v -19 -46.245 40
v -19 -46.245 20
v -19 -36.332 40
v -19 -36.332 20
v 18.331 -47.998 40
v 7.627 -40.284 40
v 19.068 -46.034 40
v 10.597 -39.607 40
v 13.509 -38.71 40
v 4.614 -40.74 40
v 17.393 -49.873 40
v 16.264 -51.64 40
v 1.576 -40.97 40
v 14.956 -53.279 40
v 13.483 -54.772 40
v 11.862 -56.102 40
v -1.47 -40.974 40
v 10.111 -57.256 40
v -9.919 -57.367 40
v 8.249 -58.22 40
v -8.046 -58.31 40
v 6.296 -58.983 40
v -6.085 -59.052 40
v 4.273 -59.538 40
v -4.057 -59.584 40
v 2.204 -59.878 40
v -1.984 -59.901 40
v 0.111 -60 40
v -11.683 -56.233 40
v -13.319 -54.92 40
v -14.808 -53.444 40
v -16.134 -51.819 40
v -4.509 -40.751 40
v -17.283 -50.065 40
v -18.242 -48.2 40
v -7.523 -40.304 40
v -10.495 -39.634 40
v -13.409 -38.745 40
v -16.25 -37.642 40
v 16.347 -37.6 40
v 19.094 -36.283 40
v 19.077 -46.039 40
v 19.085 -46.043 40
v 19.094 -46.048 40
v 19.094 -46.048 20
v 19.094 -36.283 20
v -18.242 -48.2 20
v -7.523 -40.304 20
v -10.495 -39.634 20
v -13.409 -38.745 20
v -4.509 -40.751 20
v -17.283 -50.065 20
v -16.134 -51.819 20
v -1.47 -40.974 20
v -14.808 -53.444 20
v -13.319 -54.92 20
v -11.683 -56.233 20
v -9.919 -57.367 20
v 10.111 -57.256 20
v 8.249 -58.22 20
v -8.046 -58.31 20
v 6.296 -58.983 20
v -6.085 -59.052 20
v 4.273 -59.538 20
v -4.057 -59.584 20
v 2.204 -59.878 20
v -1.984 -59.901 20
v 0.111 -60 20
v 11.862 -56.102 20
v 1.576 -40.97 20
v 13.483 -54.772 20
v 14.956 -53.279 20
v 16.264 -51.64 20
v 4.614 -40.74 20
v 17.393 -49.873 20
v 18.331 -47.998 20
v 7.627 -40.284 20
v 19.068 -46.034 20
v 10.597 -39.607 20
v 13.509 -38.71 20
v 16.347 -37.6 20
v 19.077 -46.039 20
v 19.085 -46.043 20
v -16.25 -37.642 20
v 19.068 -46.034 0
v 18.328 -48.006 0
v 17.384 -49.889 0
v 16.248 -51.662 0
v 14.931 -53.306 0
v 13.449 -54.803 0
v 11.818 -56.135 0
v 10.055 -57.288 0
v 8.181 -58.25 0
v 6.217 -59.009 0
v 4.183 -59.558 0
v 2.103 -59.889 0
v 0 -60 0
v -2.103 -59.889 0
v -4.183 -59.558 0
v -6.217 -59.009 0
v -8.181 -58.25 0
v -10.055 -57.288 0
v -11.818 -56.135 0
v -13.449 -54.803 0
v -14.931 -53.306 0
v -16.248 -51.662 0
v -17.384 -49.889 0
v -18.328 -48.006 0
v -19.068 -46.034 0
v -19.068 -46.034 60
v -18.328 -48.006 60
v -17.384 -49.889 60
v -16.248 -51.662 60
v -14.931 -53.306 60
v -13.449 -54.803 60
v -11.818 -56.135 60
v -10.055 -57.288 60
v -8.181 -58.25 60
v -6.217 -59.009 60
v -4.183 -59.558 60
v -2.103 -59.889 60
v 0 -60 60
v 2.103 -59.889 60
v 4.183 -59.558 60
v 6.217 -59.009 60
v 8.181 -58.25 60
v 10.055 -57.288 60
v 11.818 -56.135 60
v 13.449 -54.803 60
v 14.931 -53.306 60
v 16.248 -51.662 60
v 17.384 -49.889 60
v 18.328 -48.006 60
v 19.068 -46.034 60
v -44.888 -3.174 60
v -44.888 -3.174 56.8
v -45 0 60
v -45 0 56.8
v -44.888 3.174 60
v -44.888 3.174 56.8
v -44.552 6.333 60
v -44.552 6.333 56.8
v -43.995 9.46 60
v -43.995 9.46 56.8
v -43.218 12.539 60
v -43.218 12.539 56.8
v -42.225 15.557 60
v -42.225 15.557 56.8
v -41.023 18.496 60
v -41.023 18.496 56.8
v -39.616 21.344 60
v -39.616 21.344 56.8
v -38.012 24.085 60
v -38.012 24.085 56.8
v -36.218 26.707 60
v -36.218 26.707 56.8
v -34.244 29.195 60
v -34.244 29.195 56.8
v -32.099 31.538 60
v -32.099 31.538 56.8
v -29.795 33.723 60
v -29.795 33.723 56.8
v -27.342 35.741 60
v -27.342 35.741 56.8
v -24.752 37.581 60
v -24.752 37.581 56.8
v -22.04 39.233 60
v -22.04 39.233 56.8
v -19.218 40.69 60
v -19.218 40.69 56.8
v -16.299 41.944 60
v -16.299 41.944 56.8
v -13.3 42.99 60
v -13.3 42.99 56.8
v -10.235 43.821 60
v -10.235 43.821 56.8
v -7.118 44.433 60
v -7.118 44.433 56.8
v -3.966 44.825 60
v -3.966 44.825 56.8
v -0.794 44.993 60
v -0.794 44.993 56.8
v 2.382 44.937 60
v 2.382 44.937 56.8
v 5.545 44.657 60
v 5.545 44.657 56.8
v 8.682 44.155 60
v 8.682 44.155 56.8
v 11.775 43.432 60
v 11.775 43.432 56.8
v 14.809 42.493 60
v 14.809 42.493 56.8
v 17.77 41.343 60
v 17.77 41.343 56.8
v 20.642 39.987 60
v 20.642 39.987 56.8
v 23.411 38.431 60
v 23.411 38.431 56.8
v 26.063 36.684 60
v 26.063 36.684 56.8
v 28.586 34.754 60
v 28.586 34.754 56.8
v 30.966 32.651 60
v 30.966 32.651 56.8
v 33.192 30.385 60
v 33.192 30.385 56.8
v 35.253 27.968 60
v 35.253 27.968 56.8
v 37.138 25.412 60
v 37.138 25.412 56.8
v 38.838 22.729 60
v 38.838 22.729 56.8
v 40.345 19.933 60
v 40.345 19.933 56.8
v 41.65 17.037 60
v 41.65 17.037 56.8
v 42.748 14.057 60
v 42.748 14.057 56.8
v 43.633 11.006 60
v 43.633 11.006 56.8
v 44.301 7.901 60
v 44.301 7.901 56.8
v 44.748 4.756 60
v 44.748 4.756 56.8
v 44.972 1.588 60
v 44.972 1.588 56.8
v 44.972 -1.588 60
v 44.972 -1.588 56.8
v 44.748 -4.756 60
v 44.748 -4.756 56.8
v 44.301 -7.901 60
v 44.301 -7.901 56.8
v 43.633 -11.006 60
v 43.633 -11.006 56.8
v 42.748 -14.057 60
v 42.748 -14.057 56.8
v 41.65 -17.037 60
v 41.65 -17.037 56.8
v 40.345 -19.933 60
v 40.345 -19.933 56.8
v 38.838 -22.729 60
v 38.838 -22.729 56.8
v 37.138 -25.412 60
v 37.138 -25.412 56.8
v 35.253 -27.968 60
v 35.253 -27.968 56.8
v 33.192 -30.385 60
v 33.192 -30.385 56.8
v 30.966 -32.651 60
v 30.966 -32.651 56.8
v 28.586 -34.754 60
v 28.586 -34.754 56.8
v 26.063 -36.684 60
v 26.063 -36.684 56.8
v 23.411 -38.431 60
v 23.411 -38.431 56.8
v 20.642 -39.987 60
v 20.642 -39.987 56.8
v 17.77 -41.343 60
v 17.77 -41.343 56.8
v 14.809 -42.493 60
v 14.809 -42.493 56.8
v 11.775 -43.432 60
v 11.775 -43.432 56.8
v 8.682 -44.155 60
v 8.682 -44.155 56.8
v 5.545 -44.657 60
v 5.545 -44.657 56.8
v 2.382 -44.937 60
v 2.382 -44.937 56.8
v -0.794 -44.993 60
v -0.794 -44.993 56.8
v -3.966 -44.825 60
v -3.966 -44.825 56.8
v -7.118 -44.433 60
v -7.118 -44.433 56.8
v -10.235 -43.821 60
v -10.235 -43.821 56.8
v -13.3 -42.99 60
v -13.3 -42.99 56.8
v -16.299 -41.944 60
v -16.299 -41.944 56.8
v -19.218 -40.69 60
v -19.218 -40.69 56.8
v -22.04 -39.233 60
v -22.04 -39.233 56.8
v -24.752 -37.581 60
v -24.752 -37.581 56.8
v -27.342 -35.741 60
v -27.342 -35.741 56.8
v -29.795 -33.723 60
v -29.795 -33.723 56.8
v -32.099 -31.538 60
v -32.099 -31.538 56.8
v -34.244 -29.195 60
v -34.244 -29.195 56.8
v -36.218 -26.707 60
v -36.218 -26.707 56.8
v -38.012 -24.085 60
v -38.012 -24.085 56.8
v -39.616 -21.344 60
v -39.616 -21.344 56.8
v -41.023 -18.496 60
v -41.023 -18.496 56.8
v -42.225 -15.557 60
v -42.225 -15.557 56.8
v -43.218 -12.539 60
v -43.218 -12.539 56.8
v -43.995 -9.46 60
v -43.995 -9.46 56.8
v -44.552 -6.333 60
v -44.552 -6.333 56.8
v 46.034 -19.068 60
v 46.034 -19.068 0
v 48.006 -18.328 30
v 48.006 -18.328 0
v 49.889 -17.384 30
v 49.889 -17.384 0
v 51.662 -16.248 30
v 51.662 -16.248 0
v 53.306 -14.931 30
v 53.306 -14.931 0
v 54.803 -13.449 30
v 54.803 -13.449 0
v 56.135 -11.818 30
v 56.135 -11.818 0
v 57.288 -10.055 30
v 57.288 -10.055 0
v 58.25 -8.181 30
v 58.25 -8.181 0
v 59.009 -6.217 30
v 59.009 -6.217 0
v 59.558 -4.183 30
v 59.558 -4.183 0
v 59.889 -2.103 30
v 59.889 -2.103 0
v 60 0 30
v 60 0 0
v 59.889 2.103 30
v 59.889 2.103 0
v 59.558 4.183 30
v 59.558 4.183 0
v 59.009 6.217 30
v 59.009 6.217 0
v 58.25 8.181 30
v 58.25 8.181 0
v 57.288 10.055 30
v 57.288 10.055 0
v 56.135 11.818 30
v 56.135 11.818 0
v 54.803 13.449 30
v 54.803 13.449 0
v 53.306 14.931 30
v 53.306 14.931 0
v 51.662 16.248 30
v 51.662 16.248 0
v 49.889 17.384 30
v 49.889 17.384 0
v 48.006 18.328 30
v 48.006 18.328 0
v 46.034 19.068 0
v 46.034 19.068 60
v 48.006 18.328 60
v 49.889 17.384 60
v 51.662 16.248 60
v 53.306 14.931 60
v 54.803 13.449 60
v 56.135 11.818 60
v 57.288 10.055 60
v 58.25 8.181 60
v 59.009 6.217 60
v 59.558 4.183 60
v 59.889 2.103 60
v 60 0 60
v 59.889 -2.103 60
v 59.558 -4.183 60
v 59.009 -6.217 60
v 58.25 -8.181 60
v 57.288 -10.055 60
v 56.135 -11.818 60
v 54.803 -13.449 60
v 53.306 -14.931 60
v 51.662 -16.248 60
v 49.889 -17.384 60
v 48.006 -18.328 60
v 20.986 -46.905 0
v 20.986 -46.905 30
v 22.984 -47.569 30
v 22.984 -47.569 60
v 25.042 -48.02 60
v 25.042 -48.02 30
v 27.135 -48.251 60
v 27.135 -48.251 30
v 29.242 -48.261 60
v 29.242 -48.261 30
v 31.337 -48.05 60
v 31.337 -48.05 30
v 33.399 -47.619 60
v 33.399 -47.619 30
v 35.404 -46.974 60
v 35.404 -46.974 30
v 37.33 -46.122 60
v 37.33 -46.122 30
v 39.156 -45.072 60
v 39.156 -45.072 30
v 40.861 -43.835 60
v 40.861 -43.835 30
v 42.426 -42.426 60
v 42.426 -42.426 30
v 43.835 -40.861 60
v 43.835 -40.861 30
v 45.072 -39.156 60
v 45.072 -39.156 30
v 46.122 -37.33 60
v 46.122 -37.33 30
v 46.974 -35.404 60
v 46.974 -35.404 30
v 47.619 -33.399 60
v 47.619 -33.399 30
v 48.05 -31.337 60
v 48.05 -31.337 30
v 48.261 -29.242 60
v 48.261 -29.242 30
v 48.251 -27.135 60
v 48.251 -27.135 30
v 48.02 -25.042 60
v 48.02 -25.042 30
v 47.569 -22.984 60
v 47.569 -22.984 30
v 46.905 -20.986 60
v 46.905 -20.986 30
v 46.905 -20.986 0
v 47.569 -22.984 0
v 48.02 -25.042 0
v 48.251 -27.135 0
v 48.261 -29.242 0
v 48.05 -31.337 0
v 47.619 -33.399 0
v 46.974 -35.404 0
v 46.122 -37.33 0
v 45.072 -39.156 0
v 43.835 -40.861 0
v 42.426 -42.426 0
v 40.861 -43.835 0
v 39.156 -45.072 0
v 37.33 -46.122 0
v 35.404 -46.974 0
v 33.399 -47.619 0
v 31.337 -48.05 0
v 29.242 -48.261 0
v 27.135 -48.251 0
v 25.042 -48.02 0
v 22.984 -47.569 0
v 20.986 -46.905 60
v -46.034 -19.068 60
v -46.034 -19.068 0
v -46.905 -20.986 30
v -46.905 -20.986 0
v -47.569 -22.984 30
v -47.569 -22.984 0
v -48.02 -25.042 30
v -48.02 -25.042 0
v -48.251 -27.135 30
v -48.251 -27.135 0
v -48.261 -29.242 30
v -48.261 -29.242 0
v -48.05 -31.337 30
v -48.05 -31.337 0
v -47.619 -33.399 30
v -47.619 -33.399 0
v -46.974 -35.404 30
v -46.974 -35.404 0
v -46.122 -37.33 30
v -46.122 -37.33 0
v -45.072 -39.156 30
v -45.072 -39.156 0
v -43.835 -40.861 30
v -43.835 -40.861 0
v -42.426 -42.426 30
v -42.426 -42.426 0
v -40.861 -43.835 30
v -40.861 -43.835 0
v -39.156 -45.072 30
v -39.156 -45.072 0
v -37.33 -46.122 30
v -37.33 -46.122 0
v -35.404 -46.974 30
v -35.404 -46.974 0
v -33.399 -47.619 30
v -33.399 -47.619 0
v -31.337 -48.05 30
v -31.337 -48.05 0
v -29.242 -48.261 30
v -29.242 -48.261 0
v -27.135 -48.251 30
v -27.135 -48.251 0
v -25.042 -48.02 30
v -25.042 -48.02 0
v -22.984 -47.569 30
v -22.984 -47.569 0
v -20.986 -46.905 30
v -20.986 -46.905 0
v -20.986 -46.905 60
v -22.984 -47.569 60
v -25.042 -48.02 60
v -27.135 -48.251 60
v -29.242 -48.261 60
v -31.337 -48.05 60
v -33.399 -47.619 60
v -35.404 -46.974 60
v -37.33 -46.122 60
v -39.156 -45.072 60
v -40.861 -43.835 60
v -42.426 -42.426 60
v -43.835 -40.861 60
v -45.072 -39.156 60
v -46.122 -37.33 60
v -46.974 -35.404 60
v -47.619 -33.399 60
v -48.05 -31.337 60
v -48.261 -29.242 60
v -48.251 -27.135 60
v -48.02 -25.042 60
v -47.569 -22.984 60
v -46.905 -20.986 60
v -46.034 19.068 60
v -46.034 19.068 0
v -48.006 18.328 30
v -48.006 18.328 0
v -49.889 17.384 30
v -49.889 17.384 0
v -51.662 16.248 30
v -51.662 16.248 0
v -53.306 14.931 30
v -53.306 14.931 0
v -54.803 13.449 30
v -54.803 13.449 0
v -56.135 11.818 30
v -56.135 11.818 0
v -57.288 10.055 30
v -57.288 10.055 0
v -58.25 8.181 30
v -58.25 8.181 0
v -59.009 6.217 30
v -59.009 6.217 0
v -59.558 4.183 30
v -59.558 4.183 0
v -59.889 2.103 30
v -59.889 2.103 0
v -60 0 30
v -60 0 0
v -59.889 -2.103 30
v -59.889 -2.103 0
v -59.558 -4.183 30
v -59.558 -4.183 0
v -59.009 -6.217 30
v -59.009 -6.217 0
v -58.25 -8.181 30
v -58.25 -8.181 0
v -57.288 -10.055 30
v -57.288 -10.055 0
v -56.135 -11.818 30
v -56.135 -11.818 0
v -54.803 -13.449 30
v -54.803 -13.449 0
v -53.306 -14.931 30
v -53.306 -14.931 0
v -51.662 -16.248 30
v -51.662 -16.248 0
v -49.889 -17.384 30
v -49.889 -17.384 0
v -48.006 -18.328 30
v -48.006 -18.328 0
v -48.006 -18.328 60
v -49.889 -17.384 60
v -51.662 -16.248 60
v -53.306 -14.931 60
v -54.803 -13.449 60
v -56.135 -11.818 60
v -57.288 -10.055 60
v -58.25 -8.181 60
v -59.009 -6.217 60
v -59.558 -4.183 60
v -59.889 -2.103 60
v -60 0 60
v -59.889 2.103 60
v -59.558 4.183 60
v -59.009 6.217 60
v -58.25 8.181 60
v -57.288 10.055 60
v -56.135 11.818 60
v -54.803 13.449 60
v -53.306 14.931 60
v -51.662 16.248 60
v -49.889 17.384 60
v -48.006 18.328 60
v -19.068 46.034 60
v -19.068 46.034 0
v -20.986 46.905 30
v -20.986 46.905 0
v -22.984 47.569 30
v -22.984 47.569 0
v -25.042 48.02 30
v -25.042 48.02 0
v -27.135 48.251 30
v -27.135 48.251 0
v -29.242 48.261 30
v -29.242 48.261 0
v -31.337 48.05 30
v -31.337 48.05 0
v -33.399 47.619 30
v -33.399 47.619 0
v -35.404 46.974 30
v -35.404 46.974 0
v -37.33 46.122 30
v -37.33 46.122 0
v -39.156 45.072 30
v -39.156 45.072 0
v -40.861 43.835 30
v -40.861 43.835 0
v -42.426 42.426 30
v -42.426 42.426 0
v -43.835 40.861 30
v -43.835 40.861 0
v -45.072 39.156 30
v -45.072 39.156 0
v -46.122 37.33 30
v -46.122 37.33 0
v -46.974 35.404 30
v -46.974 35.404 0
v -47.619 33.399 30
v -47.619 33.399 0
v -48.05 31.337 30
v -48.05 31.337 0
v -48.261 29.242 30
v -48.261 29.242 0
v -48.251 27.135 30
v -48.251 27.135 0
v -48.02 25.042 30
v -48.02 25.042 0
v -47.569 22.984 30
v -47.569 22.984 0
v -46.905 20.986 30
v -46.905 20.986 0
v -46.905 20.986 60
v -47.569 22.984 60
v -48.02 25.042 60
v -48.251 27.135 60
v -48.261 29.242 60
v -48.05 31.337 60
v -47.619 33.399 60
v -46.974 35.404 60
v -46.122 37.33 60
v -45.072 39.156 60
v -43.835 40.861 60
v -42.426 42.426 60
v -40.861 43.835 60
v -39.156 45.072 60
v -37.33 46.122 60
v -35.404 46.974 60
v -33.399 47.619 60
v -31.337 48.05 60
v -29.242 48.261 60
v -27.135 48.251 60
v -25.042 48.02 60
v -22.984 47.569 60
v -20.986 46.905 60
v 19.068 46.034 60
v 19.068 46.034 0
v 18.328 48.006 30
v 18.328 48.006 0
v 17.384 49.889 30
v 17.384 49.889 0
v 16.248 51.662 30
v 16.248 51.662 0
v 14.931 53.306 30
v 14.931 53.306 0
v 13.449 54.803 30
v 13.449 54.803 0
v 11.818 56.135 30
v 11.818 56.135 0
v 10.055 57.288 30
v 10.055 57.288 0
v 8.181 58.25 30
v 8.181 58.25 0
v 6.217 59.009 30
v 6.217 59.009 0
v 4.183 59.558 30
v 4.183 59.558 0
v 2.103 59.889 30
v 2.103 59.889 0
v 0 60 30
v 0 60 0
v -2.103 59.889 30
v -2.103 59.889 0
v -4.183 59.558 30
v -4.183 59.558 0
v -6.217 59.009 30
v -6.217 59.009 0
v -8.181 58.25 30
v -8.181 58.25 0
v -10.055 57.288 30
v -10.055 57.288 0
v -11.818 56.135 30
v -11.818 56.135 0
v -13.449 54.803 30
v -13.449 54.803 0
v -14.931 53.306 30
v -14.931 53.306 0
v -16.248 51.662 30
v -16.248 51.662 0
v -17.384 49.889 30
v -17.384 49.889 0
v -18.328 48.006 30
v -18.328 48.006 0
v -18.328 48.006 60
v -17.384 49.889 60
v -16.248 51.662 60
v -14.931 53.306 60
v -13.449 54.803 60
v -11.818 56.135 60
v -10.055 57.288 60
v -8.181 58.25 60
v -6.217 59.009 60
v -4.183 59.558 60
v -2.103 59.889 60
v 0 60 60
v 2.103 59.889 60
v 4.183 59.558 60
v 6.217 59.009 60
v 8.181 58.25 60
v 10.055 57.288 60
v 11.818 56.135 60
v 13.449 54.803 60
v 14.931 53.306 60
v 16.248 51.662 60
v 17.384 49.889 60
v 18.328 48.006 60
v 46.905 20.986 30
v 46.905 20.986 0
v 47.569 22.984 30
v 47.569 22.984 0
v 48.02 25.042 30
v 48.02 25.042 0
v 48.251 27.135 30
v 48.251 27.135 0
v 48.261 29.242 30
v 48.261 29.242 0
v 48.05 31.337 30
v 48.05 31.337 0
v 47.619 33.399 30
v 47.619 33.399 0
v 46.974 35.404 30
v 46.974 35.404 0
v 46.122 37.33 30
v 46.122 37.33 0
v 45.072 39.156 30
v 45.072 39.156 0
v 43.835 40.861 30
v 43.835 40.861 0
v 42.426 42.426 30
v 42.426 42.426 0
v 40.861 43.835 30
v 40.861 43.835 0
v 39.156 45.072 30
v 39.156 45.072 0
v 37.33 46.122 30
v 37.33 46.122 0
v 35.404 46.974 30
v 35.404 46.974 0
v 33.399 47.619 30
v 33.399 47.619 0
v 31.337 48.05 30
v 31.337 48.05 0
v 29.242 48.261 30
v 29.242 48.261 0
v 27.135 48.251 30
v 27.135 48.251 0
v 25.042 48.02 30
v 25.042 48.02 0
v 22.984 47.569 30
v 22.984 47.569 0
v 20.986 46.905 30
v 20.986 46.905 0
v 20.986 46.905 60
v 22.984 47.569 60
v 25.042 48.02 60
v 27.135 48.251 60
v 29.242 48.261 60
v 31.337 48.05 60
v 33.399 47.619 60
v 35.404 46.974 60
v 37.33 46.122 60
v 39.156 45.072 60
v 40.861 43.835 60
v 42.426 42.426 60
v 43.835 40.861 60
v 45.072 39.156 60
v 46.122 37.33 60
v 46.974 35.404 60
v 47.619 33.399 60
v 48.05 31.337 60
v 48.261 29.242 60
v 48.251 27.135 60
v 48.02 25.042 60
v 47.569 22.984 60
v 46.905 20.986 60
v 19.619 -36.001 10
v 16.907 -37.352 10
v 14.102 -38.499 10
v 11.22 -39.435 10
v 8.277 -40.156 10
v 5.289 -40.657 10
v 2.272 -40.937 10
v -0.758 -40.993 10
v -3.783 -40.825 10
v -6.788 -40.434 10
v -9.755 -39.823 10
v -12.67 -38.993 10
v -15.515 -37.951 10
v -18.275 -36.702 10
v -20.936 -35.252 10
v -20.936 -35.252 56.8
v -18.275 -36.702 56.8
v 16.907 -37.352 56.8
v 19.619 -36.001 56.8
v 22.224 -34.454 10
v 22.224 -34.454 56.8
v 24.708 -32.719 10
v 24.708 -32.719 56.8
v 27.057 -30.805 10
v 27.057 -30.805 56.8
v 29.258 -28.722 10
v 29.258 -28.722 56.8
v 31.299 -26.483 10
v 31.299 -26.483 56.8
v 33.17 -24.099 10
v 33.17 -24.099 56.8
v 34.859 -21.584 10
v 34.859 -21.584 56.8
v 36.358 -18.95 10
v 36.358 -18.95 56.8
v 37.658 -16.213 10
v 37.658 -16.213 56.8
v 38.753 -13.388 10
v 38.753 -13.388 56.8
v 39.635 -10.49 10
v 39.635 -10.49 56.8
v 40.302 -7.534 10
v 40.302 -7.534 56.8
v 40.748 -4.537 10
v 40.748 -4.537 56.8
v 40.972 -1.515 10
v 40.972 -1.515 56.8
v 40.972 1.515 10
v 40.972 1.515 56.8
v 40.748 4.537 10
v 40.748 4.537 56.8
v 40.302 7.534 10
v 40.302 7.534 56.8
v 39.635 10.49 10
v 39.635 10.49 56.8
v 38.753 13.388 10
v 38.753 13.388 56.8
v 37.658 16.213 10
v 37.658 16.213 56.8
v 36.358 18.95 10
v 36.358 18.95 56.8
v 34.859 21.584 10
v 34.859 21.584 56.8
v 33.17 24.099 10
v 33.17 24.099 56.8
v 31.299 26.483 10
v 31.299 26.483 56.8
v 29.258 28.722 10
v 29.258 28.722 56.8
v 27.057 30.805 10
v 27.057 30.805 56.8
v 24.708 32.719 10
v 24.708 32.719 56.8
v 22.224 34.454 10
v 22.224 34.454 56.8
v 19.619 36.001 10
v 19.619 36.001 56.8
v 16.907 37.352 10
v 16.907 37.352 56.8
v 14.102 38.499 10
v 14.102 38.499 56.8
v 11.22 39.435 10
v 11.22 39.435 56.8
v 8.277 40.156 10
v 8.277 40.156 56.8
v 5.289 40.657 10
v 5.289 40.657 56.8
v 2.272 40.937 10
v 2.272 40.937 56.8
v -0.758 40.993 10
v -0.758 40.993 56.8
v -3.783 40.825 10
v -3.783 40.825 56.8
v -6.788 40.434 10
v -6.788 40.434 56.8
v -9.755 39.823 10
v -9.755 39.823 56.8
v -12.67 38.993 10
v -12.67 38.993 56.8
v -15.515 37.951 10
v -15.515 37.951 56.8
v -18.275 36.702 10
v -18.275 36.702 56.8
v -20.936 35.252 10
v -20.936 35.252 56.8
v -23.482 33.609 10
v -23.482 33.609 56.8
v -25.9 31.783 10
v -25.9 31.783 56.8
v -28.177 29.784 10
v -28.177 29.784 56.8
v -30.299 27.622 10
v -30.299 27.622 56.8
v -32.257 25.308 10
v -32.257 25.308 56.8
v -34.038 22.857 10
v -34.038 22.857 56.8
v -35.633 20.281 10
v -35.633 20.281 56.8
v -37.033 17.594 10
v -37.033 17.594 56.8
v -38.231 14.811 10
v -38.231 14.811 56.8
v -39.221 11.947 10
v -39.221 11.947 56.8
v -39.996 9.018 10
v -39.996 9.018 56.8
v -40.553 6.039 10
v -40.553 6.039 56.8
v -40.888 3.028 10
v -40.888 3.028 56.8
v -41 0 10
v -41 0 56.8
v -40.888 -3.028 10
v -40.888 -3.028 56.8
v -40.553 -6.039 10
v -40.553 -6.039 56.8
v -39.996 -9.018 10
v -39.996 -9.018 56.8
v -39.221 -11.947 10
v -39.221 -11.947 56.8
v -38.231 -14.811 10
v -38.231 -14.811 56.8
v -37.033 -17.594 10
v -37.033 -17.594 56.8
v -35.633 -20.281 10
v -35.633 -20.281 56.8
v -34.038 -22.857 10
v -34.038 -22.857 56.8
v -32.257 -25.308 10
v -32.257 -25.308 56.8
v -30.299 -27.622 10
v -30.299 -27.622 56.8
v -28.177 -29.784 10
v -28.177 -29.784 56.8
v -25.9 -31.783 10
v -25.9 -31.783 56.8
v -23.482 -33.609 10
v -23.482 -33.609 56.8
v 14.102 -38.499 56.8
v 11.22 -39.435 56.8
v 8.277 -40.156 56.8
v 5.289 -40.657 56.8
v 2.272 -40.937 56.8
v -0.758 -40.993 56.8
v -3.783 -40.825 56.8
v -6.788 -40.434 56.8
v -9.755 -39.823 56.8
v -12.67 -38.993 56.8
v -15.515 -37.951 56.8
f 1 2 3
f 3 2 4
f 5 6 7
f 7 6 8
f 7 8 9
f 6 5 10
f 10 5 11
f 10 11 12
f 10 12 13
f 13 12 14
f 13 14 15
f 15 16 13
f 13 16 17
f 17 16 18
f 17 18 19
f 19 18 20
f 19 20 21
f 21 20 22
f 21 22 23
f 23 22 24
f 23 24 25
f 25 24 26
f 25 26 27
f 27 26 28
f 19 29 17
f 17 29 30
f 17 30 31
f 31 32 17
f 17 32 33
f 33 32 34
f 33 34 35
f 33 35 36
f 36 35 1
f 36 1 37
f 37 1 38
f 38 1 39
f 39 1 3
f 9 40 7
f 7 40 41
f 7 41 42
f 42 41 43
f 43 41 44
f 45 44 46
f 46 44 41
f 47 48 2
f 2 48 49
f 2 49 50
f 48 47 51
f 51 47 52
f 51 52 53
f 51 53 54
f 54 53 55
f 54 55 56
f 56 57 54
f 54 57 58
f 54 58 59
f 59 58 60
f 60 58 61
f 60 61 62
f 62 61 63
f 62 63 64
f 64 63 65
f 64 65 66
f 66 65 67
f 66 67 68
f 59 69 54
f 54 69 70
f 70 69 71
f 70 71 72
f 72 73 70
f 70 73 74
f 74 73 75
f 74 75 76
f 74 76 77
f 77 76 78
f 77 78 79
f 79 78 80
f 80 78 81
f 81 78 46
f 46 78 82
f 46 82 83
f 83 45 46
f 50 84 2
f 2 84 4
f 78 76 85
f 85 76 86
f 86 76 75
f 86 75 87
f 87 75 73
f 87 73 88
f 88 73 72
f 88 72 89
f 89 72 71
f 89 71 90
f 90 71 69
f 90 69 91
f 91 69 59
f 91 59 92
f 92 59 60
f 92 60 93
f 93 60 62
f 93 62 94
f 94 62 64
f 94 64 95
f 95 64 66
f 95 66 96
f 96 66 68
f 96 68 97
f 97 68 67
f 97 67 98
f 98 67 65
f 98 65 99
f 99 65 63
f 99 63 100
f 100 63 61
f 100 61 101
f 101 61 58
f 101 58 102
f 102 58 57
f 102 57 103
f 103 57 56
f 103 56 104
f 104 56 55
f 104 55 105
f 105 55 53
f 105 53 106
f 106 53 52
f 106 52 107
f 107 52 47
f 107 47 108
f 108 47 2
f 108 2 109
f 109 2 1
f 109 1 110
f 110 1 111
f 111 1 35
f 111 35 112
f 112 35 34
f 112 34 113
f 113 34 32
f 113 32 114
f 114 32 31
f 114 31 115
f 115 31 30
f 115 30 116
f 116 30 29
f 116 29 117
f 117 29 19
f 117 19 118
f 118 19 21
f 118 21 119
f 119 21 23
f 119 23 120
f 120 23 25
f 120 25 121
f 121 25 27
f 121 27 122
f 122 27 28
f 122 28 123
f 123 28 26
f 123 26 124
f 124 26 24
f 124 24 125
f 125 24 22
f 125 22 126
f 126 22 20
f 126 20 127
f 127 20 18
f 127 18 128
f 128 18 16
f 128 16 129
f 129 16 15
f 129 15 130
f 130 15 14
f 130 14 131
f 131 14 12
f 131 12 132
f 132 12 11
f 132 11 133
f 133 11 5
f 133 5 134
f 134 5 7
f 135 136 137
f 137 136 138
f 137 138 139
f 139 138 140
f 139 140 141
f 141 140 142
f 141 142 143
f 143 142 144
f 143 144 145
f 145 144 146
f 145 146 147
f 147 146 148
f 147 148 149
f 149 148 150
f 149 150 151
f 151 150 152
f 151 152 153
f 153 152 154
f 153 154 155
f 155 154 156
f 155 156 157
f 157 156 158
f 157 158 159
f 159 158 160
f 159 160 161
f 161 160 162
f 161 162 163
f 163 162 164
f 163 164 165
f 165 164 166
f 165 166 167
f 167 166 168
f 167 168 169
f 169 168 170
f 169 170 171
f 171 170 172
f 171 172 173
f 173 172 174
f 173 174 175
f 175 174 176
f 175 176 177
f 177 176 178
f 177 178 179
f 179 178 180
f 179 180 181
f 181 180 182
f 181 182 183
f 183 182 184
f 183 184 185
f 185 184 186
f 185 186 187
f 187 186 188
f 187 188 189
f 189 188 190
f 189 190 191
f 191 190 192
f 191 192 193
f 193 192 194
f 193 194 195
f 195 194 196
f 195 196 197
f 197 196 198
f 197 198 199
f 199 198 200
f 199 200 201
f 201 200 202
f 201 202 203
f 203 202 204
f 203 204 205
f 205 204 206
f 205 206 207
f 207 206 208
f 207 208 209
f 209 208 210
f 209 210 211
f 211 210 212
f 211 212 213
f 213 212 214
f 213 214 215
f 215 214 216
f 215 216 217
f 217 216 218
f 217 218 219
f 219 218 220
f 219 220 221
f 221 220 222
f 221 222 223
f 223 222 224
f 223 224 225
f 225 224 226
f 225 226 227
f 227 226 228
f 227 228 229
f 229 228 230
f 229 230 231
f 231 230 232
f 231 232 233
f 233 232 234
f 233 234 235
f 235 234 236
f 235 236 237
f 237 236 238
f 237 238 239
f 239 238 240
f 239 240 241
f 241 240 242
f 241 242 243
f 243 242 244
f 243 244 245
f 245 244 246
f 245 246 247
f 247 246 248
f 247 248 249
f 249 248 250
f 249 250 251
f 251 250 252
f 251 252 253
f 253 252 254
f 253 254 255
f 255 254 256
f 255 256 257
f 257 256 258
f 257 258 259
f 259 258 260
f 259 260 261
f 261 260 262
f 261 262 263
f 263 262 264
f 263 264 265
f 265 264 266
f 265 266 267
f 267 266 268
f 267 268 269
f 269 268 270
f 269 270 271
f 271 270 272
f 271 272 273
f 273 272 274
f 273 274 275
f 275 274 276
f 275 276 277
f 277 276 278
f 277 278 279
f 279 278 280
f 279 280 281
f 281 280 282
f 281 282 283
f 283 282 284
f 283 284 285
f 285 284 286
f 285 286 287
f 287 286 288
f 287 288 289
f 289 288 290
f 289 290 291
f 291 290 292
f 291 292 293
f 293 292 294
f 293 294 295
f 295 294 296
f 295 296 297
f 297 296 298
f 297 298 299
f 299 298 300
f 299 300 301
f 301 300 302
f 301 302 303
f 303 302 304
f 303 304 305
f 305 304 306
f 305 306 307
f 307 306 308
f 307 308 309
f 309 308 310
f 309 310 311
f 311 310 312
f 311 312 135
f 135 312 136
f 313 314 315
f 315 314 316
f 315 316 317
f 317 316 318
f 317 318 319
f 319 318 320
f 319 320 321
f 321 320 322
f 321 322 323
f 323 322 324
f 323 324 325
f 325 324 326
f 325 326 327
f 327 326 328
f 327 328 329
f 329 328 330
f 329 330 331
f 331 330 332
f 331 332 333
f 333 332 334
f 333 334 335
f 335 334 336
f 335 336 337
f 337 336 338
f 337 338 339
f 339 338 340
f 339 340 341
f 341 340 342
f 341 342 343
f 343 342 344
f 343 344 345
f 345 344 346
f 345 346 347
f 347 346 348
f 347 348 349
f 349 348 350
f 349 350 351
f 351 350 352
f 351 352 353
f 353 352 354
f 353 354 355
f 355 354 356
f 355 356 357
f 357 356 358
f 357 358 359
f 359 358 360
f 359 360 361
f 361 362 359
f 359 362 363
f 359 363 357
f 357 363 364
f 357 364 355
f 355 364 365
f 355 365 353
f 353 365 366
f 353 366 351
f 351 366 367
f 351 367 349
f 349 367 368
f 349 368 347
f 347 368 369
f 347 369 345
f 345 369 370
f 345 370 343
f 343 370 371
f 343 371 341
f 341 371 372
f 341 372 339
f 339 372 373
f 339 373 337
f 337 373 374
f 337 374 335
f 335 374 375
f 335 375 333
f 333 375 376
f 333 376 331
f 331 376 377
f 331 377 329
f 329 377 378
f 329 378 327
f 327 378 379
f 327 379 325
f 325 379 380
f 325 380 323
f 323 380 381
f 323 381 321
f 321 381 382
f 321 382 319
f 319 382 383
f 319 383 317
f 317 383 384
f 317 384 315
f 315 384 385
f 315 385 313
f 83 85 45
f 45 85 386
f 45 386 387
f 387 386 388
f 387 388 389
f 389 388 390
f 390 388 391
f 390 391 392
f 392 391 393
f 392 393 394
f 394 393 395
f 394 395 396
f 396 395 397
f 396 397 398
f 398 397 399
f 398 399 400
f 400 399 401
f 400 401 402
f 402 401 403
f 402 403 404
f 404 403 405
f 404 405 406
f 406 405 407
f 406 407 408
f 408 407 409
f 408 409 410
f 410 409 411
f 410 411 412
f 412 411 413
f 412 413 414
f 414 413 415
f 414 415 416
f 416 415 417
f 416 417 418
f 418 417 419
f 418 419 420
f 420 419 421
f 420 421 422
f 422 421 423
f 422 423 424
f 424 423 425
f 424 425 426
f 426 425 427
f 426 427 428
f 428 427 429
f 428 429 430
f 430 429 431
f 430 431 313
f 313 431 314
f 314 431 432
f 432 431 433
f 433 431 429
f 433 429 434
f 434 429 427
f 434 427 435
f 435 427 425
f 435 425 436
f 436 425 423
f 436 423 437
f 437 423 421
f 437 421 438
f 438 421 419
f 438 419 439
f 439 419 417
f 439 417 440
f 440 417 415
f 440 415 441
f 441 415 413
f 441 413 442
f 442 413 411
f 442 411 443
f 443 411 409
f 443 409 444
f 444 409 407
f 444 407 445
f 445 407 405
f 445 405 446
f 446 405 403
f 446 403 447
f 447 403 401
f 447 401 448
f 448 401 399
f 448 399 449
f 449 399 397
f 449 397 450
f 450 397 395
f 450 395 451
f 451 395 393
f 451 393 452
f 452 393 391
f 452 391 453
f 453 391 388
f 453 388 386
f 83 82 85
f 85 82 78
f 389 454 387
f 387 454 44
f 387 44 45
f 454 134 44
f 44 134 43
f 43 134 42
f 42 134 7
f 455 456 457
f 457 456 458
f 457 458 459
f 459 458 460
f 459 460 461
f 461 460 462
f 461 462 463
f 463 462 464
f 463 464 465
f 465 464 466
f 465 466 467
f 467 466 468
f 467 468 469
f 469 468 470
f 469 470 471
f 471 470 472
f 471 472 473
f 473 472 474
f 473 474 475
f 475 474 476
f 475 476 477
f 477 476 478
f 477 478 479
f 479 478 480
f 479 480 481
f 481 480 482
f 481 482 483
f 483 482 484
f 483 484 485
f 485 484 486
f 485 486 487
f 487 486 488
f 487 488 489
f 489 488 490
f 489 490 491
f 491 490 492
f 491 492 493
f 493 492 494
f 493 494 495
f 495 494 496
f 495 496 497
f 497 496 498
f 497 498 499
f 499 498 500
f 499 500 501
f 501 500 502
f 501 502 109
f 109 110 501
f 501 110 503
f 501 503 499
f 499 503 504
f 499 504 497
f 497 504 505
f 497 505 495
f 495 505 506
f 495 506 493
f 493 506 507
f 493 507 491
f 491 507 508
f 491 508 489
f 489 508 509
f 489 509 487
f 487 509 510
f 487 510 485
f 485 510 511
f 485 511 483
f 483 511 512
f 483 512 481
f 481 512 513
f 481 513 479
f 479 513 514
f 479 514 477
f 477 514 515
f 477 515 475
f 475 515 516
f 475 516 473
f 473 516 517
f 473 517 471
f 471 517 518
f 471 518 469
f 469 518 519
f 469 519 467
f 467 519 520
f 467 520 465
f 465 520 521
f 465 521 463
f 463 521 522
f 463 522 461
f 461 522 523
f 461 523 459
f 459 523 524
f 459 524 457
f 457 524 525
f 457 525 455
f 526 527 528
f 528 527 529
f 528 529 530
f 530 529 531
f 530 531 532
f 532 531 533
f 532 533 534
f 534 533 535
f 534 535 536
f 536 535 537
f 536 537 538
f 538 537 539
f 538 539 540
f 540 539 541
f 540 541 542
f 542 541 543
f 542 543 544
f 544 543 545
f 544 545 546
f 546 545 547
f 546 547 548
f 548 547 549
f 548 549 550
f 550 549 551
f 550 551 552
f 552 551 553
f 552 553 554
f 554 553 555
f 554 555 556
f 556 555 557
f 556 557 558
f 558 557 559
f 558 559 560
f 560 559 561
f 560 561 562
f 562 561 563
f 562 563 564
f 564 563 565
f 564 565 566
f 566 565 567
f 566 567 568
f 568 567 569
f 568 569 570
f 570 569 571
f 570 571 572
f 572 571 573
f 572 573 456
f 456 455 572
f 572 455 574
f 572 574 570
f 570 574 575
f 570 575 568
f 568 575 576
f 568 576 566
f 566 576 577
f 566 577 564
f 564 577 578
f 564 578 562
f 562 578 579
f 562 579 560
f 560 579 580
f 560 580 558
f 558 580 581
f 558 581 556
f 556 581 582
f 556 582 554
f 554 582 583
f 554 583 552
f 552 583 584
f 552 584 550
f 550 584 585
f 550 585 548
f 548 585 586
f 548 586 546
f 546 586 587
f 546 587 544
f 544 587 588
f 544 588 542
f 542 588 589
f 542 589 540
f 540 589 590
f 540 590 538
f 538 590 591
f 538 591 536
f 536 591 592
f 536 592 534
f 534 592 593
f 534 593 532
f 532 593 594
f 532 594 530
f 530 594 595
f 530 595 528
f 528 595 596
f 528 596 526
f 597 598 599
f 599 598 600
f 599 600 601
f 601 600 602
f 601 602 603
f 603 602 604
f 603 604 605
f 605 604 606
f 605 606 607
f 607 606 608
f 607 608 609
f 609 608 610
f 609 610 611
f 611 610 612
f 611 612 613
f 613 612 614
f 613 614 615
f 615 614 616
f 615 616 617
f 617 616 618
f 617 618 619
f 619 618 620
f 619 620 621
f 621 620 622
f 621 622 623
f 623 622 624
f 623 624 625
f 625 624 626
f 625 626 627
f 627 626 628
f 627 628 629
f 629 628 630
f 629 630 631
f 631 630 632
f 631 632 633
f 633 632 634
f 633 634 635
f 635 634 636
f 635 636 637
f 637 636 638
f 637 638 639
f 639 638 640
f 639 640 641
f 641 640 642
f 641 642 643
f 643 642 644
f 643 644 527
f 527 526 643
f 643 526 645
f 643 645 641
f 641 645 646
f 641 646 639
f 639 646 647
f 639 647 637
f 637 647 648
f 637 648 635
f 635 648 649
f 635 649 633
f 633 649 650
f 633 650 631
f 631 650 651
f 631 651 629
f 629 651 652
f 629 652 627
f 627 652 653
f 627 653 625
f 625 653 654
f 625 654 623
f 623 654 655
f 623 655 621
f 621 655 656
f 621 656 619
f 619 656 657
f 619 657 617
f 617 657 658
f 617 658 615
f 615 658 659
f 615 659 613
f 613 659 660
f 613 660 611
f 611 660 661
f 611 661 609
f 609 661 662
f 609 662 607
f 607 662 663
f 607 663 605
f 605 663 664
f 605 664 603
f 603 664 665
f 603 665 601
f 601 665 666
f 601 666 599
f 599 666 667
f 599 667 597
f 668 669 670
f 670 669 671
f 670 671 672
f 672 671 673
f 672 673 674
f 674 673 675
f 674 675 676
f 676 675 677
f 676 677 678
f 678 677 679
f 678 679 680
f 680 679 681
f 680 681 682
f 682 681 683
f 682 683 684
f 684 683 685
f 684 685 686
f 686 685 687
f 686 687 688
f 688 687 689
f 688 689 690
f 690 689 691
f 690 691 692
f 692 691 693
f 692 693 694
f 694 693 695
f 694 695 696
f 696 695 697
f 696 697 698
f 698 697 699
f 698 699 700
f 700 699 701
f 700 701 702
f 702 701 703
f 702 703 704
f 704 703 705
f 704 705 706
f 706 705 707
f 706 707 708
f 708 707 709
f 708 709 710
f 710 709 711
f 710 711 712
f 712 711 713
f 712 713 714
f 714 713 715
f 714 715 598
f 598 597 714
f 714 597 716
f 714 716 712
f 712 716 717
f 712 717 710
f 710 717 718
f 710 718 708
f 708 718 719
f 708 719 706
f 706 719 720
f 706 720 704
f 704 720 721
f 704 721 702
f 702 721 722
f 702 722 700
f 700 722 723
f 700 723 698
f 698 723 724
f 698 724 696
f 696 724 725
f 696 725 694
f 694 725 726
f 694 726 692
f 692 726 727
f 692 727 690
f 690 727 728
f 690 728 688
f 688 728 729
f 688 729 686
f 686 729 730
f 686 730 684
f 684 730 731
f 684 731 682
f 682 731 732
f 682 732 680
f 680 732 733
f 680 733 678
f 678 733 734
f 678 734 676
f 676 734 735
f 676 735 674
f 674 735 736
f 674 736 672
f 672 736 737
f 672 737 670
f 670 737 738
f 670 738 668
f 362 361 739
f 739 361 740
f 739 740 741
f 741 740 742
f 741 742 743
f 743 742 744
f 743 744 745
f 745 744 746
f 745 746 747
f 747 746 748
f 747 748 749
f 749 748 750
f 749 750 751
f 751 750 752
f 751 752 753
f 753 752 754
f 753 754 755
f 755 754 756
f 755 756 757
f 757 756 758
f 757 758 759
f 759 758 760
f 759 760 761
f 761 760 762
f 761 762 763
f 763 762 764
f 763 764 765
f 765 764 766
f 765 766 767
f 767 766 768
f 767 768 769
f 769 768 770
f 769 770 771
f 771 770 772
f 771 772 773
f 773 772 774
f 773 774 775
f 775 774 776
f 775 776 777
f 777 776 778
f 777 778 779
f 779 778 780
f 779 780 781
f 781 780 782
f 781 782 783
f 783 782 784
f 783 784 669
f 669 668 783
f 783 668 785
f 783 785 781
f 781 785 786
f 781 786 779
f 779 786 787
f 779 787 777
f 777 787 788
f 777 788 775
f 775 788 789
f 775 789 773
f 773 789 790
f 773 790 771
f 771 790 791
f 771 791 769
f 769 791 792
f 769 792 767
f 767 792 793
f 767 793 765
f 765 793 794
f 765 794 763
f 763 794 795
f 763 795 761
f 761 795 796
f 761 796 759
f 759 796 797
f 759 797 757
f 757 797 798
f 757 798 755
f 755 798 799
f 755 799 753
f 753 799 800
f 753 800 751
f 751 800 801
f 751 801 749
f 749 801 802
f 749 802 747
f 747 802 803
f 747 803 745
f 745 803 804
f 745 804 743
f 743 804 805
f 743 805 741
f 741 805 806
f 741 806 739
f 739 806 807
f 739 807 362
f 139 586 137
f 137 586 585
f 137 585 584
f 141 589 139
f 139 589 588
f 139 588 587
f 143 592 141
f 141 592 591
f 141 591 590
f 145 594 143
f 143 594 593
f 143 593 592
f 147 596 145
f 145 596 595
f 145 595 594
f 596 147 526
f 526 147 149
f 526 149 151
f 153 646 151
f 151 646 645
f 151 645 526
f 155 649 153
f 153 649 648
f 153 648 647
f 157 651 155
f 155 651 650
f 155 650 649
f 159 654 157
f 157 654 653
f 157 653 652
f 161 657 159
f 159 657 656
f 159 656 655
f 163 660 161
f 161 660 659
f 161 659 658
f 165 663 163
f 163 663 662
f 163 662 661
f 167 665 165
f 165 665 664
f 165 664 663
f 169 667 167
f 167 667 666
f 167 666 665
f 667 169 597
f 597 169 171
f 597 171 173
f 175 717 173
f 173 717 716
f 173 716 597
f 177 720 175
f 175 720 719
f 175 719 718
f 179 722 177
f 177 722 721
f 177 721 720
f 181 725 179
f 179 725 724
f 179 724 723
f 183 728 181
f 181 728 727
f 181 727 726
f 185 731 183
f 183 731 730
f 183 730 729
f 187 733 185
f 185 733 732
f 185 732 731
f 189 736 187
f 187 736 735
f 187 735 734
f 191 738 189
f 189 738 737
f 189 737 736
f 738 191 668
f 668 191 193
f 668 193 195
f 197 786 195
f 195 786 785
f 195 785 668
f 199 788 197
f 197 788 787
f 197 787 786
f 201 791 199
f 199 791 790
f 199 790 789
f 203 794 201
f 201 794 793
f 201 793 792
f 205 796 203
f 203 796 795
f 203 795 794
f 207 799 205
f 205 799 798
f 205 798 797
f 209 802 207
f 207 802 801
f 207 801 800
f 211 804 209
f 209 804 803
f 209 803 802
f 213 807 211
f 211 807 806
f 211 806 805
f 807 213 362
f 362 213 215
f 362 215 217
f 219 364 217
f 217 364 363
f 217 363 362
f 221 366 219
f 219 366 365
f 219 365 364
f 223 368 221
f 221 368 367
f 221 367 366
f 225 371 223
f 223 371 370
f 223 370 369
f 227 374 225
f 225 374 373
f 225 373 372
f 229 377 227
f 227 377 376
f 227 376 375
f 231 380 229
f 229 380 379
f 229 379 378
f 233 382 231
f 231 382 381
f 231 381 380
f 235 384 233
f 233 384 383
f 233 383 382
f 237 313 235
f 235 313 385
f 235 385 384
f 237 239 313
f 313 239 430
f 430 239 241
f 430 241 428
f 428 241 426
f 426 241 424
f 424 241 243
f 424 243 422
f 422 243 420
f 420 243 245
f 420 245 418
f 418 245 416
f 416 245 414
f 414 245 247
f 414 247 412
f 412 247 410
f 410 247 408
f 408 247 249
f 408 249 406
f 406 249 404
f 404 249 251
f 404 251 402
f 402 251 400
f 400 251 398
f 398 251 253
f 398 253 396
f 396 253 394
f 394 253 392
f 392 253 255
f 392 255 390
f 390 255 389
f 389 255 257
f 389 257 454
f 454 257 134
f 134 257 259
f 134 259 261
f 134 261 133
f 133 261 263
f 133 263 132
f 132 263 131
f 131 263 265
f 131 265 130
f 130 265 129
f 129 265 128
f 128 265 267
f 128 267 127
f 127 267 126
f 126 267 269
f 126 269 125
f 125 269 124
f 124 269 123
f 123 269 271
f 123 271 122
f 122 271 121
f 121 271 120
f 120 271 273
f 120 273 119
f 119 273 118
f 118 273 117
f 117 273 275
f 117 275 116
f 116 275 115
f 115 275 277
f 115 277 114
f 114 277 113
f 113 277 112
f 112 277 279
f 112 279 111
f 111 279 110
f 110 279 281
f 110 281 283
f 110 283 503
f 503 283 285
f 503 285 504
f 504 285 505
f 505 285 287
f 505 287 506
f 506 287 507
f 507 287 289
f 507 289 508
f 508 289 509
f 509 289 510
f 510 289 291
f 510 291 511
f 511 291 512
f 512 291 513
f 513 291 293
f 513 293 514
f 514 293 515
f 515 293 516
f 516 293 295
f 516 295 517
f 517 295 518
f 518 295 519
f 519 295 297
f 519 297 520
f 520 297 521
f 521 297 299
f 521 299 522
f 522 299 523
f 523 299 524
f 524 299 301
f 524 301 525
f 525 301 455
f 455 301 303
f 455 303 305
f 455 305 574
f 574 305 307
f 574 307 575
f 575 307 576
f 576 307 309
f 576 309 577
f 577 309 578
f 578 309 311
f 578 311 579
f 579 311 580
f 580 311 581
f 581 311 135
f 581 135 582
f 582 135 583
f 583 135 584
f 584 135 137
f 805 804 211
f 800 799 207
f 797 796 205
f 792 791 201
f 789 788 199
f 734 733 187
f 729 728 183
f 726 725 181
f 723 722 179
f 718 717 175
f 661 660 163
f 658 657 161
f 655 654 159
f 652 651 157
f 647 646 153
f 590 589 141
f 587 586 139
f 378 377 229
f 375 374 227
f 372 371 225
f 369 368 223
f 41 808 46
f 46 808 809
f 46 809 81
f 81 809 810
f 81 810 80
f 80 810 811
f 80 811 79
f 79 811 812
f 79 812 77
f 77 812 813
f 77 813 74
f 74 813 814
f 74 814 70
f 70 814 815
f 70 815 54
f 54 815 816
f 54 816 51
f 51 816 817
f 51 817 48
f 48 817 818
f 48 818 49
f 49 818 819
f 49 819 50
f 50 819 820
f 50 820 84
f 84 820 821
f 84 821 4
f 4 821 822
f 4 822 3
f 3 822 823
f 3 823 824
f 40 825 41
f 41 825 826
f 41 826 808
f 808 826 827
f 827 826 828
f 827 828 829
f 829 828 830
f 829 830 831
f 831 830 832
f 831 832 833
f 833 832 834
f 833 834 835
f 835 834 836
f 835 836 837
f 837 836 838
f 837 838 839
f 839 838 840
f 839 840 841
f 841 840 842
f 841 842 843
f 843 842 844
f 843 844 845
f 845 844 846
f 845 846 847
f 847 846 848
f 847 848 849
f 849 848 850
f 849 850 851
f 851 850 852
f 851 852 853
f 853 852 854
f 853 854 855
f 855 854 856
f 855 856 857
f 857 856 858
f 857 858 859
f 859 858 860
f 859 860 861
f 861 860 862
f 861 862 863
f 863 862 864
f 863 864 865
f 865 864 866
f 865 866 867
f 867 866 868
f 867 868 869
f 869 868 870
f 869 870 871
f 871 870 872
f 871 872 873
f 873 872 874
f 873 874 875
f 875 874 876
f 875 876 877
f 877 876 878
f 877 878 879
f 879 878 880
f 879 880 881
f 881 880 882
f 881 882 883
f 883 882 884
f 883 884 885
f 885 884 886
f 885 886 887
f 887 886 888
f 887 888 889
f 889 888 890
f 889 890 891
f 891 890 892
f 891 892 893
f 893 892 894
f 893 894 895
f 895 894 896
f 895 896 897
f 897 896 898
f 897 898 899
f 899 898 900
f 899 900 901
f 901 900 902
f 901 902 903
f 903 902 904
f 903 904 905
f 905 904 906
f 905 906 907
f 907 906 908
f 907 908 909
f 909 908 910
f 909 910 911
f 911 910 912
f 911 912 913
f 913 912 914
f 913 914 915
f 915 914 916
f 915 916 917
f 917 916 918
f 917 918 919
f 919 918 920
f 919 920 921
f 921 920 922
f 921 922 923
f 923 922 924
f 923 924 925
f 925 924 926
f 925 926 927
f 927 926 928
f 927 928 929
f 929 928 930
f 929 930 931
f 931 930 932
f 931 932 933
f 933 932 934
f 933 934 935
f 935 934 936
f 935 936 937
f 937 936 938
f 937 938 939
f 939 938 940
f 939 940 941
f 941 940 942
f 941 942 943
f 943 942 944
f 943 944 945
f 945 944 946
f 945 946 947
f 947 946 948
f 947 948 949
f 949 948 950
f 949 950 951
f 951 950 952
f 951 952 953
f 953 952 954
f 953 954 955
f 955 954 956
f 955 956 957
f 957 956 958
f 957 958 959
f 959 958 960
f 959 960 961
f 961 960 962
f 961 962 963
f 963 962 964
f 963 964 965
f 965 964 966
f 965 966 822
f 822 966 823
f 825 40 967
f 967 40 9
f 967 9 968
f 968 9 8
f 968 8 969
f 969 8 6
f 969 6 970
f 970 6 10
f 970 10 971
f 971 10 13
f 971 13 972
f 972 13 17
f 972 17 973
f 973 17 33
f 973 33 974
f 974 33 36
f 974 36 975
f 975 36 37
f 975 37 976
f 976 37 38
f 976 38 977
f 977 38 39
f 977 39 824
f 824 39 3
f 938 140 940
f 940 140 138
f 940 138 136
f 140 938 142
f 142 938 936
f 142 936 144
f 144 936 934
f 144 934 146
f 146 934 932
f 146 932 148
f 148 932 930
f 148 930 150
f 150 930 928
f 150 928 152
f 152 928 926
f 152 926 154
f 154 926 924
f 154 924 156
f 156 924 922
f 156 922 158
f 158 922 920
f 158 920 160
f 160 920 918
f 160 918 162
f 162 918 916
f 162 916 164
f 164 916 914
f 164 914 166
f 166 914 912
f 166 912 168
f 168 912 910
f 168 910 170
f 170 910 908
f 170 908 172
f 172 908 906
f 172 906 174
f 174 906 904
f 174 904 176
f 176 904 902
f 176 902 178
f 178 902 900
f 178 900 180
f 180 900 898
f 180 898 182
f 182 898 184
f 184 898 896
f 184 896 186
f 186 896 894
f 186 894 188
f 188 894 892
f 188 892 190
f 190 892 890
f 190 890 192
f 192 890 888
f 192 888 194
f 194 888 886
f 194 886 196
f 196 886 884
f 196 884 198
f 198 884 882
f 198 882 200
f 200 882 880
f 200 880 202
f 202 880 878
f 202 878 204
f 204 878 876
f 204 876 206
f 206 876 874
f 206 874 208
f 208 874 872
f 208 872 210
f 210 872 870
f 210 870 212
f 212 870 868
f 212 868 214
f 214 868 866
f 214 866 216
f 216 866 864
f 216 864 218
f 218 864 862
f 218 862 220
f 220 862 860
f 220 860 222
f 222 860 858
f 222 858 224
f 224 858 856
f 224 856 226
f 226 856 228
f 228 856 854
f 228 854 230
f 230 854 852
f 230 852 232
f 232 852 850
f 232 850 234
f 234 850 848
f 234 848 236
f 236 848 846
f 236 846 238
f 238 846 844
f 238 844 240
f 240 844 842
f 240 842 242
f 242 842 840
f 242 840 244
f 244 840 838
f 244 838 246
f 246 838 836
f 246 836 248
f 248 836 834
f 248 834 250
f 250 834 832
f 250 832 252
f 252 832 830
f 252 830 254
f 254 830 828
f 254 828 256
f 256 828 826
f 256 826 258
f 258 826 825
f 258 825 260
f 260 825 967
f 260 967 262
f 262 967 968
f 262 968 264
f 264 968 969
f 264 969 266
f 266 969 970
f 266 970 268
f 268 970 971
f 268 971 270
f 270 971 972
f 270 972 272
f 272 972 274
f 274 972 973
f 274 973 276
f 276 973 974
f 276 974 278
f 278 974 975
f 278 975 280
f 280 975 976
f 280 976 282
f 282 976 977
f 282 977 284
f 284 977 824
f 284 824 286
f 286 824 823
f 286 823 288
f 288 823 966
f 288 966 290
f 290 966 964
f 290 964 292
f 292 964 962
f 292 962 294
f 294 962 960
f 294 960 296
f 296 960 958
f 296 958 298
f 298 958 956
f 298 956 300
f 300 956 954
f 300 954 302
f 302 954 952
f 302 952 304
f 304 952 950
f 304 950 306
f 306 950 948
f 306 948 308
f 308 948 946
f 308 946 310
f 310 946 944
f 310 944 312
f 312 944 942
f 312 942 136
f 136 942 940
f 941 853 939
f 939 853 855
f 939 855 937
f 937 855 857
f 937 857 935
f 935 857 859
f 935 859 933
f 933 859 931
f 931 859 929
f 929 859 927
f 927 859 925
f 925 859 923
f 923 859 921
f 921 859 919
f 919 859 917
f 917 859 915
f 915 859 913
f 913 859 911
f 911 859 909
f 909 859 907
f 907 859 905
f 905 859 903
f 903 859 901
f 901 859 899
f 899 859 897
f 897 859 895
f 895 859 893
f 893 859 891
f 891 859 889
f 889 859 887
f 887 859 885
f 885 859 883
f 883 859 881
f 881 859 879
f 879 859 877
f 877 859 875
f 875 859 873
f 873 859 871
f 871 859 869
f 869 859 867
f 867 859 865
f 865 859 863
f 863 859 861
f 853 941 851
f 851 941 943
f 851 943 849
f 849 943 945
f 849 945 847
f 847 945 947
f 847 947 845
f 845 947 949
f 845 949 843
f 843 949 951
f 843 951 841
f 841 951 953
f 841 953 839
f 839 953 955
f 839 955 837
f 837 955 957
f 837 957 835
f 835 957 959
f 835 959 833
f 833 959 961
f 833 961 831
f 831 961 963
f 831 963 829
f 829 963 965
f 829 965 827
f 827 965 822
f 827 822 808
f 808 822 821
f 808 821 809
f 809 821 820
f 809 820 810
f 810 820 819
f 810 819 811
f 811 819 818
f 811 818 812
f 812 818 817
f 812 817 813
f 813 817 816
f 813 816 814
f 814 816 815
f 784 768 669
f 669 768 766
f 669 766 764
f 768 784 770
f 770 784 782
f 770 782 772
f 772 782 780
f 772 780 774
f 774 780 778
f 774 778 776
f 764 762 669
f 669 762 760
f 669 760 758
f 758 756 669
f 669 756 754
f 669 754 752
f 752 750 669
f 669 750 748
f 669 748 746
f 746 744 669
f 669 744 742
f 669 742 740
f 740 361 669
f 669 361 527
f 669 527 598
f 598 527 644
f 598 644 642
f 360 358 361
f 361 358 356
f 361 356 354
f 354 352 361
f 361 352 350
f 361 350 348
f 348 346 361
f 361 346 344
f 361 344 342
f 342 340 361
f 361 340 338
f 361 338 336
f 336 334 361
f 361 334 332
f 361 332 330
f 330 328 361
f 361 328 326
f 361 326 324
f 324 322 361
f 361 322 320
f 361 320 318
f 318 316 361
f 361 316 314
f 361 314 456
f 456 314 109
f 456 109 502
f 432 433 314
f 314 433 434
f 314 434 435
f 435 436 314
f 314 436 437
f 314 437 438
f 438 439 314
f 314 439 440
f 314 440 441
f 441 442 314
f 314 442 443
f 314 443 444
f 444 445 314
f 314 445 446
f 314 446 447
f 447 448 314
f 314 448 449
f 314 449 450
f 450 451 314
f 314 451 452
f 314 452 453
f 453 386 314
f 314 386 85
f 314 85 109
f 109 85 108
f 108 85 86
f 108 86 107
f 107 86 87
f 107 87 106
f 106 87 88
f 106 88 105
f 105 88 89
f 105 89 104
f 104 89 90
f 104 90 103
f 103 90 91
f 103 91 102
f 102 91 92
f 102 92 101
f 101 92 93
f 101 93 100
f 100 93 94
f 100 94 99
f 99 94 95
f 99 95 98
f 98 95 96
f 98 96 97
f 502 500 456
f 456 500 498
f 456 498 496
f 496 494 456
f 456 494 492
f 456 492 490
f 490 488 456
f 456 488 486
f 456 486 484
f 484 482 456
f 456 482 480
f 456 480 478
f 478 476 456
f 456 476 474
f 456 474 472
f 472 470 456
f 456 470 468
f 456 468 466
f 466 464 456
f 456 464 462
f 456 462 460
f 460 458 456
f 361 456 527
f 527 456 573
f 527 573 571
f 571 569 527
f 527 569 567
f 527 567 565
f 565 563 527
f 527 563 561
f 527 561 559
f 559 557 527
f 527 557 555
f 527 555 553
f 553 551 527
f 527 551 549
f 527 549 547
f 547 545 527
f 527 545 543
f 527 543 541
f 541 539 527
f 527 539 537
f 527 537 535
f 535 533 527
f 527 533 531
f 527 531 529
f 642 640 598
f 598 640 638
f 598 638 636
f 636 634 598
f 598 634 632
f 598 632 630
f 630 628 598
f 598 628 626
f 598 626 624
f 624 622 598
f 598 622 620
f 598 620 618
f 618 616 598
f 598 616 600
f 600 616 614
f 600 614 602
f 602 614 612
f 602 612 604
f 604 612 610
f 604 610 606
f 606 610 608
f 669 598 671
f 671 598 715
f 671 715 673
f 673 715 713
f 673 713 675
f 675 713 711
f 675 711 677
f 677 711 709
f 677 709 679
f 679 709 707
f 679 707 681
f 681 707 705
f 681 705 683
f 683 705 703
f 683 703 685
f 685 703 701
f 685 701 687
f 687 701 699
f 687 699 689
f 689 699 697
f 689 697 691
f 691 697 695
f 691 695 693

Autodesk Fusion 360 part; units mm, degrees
sketch "Boceto1" plane through (0, 0, 0) normal (0, 0, 1) x (1, 0, 0)
  circle A0 centre (0, 0) radius 41
  circle A1 centre (0, 0) radius 50
  circle A2 centre (0, 0) radius 45
  arc A3 (-19.068, 46.0342) -> (-46.0342, 19.068) centre (-28.2843, 28.2843) ccw
  arc A4 (-46.0342, -19.068) -> (-19.068, -46.0342) centre (-28.2843, -28.2843) ccw
  arc A5 (-46.0342, 19.068) -> (-46.0342, -19.068) centre (-40, 0) ccw
  arc A6 (-19.068, -46.0342) -> (19.068, -46.0342) centre (0, -40) ccw
  arc A7 (46.0342, -19.068) -> (46.0342, 19.068) centre (40, 0) ccw
  arc A8 (19.068, -46.0342) -> (46.0342, -19.068) centre (28.2843, -28.2843) ccw
  arc A9 (19.068, 46.0342) -> (-19.068, 46.0342) centre (0, 40) ccw
  arc A10 (46.0342, 19.068) -> (19.068, 46.0342) centre (28.2843, 28.2843) ccw
  dimension "d1" = 82
  dimension "d2" = 100
  dimension "d3" = 90
extrude "Extruir1" add sketch "Boceto1" along normal blind 10 contours A0
extrude "Extruir2" add sketch "Boceto1" along normal blind 56.8 contours A2
extrude "Extruir3" add sketch "Boceto1" along normal blind 60 contours A1 A3 A4 A5 A6 A7 A8 A9 A10 | A1 A7 | A1 A10 | A1 A8 | A1 A9 | A1 A6 | A1 A3 | A1 A4 | A1 A5
sketch "Boceto2" plane through (0, 0, 0) normal (0, 1, 0) x (1, 0, 0)
  line L0 (-19, -20) -> (19.0938, -20)
  line L1 (19.0938, -20) -> (19.0938, -40)
  line L2 (19.0938, -40) -> (-19, -40)
  line L3 (-19, -40) -> (-19, -20)
  dimension "d15" = 20
extrude "Extruir4" cut sketch "Boceto2" against normal blind 60
